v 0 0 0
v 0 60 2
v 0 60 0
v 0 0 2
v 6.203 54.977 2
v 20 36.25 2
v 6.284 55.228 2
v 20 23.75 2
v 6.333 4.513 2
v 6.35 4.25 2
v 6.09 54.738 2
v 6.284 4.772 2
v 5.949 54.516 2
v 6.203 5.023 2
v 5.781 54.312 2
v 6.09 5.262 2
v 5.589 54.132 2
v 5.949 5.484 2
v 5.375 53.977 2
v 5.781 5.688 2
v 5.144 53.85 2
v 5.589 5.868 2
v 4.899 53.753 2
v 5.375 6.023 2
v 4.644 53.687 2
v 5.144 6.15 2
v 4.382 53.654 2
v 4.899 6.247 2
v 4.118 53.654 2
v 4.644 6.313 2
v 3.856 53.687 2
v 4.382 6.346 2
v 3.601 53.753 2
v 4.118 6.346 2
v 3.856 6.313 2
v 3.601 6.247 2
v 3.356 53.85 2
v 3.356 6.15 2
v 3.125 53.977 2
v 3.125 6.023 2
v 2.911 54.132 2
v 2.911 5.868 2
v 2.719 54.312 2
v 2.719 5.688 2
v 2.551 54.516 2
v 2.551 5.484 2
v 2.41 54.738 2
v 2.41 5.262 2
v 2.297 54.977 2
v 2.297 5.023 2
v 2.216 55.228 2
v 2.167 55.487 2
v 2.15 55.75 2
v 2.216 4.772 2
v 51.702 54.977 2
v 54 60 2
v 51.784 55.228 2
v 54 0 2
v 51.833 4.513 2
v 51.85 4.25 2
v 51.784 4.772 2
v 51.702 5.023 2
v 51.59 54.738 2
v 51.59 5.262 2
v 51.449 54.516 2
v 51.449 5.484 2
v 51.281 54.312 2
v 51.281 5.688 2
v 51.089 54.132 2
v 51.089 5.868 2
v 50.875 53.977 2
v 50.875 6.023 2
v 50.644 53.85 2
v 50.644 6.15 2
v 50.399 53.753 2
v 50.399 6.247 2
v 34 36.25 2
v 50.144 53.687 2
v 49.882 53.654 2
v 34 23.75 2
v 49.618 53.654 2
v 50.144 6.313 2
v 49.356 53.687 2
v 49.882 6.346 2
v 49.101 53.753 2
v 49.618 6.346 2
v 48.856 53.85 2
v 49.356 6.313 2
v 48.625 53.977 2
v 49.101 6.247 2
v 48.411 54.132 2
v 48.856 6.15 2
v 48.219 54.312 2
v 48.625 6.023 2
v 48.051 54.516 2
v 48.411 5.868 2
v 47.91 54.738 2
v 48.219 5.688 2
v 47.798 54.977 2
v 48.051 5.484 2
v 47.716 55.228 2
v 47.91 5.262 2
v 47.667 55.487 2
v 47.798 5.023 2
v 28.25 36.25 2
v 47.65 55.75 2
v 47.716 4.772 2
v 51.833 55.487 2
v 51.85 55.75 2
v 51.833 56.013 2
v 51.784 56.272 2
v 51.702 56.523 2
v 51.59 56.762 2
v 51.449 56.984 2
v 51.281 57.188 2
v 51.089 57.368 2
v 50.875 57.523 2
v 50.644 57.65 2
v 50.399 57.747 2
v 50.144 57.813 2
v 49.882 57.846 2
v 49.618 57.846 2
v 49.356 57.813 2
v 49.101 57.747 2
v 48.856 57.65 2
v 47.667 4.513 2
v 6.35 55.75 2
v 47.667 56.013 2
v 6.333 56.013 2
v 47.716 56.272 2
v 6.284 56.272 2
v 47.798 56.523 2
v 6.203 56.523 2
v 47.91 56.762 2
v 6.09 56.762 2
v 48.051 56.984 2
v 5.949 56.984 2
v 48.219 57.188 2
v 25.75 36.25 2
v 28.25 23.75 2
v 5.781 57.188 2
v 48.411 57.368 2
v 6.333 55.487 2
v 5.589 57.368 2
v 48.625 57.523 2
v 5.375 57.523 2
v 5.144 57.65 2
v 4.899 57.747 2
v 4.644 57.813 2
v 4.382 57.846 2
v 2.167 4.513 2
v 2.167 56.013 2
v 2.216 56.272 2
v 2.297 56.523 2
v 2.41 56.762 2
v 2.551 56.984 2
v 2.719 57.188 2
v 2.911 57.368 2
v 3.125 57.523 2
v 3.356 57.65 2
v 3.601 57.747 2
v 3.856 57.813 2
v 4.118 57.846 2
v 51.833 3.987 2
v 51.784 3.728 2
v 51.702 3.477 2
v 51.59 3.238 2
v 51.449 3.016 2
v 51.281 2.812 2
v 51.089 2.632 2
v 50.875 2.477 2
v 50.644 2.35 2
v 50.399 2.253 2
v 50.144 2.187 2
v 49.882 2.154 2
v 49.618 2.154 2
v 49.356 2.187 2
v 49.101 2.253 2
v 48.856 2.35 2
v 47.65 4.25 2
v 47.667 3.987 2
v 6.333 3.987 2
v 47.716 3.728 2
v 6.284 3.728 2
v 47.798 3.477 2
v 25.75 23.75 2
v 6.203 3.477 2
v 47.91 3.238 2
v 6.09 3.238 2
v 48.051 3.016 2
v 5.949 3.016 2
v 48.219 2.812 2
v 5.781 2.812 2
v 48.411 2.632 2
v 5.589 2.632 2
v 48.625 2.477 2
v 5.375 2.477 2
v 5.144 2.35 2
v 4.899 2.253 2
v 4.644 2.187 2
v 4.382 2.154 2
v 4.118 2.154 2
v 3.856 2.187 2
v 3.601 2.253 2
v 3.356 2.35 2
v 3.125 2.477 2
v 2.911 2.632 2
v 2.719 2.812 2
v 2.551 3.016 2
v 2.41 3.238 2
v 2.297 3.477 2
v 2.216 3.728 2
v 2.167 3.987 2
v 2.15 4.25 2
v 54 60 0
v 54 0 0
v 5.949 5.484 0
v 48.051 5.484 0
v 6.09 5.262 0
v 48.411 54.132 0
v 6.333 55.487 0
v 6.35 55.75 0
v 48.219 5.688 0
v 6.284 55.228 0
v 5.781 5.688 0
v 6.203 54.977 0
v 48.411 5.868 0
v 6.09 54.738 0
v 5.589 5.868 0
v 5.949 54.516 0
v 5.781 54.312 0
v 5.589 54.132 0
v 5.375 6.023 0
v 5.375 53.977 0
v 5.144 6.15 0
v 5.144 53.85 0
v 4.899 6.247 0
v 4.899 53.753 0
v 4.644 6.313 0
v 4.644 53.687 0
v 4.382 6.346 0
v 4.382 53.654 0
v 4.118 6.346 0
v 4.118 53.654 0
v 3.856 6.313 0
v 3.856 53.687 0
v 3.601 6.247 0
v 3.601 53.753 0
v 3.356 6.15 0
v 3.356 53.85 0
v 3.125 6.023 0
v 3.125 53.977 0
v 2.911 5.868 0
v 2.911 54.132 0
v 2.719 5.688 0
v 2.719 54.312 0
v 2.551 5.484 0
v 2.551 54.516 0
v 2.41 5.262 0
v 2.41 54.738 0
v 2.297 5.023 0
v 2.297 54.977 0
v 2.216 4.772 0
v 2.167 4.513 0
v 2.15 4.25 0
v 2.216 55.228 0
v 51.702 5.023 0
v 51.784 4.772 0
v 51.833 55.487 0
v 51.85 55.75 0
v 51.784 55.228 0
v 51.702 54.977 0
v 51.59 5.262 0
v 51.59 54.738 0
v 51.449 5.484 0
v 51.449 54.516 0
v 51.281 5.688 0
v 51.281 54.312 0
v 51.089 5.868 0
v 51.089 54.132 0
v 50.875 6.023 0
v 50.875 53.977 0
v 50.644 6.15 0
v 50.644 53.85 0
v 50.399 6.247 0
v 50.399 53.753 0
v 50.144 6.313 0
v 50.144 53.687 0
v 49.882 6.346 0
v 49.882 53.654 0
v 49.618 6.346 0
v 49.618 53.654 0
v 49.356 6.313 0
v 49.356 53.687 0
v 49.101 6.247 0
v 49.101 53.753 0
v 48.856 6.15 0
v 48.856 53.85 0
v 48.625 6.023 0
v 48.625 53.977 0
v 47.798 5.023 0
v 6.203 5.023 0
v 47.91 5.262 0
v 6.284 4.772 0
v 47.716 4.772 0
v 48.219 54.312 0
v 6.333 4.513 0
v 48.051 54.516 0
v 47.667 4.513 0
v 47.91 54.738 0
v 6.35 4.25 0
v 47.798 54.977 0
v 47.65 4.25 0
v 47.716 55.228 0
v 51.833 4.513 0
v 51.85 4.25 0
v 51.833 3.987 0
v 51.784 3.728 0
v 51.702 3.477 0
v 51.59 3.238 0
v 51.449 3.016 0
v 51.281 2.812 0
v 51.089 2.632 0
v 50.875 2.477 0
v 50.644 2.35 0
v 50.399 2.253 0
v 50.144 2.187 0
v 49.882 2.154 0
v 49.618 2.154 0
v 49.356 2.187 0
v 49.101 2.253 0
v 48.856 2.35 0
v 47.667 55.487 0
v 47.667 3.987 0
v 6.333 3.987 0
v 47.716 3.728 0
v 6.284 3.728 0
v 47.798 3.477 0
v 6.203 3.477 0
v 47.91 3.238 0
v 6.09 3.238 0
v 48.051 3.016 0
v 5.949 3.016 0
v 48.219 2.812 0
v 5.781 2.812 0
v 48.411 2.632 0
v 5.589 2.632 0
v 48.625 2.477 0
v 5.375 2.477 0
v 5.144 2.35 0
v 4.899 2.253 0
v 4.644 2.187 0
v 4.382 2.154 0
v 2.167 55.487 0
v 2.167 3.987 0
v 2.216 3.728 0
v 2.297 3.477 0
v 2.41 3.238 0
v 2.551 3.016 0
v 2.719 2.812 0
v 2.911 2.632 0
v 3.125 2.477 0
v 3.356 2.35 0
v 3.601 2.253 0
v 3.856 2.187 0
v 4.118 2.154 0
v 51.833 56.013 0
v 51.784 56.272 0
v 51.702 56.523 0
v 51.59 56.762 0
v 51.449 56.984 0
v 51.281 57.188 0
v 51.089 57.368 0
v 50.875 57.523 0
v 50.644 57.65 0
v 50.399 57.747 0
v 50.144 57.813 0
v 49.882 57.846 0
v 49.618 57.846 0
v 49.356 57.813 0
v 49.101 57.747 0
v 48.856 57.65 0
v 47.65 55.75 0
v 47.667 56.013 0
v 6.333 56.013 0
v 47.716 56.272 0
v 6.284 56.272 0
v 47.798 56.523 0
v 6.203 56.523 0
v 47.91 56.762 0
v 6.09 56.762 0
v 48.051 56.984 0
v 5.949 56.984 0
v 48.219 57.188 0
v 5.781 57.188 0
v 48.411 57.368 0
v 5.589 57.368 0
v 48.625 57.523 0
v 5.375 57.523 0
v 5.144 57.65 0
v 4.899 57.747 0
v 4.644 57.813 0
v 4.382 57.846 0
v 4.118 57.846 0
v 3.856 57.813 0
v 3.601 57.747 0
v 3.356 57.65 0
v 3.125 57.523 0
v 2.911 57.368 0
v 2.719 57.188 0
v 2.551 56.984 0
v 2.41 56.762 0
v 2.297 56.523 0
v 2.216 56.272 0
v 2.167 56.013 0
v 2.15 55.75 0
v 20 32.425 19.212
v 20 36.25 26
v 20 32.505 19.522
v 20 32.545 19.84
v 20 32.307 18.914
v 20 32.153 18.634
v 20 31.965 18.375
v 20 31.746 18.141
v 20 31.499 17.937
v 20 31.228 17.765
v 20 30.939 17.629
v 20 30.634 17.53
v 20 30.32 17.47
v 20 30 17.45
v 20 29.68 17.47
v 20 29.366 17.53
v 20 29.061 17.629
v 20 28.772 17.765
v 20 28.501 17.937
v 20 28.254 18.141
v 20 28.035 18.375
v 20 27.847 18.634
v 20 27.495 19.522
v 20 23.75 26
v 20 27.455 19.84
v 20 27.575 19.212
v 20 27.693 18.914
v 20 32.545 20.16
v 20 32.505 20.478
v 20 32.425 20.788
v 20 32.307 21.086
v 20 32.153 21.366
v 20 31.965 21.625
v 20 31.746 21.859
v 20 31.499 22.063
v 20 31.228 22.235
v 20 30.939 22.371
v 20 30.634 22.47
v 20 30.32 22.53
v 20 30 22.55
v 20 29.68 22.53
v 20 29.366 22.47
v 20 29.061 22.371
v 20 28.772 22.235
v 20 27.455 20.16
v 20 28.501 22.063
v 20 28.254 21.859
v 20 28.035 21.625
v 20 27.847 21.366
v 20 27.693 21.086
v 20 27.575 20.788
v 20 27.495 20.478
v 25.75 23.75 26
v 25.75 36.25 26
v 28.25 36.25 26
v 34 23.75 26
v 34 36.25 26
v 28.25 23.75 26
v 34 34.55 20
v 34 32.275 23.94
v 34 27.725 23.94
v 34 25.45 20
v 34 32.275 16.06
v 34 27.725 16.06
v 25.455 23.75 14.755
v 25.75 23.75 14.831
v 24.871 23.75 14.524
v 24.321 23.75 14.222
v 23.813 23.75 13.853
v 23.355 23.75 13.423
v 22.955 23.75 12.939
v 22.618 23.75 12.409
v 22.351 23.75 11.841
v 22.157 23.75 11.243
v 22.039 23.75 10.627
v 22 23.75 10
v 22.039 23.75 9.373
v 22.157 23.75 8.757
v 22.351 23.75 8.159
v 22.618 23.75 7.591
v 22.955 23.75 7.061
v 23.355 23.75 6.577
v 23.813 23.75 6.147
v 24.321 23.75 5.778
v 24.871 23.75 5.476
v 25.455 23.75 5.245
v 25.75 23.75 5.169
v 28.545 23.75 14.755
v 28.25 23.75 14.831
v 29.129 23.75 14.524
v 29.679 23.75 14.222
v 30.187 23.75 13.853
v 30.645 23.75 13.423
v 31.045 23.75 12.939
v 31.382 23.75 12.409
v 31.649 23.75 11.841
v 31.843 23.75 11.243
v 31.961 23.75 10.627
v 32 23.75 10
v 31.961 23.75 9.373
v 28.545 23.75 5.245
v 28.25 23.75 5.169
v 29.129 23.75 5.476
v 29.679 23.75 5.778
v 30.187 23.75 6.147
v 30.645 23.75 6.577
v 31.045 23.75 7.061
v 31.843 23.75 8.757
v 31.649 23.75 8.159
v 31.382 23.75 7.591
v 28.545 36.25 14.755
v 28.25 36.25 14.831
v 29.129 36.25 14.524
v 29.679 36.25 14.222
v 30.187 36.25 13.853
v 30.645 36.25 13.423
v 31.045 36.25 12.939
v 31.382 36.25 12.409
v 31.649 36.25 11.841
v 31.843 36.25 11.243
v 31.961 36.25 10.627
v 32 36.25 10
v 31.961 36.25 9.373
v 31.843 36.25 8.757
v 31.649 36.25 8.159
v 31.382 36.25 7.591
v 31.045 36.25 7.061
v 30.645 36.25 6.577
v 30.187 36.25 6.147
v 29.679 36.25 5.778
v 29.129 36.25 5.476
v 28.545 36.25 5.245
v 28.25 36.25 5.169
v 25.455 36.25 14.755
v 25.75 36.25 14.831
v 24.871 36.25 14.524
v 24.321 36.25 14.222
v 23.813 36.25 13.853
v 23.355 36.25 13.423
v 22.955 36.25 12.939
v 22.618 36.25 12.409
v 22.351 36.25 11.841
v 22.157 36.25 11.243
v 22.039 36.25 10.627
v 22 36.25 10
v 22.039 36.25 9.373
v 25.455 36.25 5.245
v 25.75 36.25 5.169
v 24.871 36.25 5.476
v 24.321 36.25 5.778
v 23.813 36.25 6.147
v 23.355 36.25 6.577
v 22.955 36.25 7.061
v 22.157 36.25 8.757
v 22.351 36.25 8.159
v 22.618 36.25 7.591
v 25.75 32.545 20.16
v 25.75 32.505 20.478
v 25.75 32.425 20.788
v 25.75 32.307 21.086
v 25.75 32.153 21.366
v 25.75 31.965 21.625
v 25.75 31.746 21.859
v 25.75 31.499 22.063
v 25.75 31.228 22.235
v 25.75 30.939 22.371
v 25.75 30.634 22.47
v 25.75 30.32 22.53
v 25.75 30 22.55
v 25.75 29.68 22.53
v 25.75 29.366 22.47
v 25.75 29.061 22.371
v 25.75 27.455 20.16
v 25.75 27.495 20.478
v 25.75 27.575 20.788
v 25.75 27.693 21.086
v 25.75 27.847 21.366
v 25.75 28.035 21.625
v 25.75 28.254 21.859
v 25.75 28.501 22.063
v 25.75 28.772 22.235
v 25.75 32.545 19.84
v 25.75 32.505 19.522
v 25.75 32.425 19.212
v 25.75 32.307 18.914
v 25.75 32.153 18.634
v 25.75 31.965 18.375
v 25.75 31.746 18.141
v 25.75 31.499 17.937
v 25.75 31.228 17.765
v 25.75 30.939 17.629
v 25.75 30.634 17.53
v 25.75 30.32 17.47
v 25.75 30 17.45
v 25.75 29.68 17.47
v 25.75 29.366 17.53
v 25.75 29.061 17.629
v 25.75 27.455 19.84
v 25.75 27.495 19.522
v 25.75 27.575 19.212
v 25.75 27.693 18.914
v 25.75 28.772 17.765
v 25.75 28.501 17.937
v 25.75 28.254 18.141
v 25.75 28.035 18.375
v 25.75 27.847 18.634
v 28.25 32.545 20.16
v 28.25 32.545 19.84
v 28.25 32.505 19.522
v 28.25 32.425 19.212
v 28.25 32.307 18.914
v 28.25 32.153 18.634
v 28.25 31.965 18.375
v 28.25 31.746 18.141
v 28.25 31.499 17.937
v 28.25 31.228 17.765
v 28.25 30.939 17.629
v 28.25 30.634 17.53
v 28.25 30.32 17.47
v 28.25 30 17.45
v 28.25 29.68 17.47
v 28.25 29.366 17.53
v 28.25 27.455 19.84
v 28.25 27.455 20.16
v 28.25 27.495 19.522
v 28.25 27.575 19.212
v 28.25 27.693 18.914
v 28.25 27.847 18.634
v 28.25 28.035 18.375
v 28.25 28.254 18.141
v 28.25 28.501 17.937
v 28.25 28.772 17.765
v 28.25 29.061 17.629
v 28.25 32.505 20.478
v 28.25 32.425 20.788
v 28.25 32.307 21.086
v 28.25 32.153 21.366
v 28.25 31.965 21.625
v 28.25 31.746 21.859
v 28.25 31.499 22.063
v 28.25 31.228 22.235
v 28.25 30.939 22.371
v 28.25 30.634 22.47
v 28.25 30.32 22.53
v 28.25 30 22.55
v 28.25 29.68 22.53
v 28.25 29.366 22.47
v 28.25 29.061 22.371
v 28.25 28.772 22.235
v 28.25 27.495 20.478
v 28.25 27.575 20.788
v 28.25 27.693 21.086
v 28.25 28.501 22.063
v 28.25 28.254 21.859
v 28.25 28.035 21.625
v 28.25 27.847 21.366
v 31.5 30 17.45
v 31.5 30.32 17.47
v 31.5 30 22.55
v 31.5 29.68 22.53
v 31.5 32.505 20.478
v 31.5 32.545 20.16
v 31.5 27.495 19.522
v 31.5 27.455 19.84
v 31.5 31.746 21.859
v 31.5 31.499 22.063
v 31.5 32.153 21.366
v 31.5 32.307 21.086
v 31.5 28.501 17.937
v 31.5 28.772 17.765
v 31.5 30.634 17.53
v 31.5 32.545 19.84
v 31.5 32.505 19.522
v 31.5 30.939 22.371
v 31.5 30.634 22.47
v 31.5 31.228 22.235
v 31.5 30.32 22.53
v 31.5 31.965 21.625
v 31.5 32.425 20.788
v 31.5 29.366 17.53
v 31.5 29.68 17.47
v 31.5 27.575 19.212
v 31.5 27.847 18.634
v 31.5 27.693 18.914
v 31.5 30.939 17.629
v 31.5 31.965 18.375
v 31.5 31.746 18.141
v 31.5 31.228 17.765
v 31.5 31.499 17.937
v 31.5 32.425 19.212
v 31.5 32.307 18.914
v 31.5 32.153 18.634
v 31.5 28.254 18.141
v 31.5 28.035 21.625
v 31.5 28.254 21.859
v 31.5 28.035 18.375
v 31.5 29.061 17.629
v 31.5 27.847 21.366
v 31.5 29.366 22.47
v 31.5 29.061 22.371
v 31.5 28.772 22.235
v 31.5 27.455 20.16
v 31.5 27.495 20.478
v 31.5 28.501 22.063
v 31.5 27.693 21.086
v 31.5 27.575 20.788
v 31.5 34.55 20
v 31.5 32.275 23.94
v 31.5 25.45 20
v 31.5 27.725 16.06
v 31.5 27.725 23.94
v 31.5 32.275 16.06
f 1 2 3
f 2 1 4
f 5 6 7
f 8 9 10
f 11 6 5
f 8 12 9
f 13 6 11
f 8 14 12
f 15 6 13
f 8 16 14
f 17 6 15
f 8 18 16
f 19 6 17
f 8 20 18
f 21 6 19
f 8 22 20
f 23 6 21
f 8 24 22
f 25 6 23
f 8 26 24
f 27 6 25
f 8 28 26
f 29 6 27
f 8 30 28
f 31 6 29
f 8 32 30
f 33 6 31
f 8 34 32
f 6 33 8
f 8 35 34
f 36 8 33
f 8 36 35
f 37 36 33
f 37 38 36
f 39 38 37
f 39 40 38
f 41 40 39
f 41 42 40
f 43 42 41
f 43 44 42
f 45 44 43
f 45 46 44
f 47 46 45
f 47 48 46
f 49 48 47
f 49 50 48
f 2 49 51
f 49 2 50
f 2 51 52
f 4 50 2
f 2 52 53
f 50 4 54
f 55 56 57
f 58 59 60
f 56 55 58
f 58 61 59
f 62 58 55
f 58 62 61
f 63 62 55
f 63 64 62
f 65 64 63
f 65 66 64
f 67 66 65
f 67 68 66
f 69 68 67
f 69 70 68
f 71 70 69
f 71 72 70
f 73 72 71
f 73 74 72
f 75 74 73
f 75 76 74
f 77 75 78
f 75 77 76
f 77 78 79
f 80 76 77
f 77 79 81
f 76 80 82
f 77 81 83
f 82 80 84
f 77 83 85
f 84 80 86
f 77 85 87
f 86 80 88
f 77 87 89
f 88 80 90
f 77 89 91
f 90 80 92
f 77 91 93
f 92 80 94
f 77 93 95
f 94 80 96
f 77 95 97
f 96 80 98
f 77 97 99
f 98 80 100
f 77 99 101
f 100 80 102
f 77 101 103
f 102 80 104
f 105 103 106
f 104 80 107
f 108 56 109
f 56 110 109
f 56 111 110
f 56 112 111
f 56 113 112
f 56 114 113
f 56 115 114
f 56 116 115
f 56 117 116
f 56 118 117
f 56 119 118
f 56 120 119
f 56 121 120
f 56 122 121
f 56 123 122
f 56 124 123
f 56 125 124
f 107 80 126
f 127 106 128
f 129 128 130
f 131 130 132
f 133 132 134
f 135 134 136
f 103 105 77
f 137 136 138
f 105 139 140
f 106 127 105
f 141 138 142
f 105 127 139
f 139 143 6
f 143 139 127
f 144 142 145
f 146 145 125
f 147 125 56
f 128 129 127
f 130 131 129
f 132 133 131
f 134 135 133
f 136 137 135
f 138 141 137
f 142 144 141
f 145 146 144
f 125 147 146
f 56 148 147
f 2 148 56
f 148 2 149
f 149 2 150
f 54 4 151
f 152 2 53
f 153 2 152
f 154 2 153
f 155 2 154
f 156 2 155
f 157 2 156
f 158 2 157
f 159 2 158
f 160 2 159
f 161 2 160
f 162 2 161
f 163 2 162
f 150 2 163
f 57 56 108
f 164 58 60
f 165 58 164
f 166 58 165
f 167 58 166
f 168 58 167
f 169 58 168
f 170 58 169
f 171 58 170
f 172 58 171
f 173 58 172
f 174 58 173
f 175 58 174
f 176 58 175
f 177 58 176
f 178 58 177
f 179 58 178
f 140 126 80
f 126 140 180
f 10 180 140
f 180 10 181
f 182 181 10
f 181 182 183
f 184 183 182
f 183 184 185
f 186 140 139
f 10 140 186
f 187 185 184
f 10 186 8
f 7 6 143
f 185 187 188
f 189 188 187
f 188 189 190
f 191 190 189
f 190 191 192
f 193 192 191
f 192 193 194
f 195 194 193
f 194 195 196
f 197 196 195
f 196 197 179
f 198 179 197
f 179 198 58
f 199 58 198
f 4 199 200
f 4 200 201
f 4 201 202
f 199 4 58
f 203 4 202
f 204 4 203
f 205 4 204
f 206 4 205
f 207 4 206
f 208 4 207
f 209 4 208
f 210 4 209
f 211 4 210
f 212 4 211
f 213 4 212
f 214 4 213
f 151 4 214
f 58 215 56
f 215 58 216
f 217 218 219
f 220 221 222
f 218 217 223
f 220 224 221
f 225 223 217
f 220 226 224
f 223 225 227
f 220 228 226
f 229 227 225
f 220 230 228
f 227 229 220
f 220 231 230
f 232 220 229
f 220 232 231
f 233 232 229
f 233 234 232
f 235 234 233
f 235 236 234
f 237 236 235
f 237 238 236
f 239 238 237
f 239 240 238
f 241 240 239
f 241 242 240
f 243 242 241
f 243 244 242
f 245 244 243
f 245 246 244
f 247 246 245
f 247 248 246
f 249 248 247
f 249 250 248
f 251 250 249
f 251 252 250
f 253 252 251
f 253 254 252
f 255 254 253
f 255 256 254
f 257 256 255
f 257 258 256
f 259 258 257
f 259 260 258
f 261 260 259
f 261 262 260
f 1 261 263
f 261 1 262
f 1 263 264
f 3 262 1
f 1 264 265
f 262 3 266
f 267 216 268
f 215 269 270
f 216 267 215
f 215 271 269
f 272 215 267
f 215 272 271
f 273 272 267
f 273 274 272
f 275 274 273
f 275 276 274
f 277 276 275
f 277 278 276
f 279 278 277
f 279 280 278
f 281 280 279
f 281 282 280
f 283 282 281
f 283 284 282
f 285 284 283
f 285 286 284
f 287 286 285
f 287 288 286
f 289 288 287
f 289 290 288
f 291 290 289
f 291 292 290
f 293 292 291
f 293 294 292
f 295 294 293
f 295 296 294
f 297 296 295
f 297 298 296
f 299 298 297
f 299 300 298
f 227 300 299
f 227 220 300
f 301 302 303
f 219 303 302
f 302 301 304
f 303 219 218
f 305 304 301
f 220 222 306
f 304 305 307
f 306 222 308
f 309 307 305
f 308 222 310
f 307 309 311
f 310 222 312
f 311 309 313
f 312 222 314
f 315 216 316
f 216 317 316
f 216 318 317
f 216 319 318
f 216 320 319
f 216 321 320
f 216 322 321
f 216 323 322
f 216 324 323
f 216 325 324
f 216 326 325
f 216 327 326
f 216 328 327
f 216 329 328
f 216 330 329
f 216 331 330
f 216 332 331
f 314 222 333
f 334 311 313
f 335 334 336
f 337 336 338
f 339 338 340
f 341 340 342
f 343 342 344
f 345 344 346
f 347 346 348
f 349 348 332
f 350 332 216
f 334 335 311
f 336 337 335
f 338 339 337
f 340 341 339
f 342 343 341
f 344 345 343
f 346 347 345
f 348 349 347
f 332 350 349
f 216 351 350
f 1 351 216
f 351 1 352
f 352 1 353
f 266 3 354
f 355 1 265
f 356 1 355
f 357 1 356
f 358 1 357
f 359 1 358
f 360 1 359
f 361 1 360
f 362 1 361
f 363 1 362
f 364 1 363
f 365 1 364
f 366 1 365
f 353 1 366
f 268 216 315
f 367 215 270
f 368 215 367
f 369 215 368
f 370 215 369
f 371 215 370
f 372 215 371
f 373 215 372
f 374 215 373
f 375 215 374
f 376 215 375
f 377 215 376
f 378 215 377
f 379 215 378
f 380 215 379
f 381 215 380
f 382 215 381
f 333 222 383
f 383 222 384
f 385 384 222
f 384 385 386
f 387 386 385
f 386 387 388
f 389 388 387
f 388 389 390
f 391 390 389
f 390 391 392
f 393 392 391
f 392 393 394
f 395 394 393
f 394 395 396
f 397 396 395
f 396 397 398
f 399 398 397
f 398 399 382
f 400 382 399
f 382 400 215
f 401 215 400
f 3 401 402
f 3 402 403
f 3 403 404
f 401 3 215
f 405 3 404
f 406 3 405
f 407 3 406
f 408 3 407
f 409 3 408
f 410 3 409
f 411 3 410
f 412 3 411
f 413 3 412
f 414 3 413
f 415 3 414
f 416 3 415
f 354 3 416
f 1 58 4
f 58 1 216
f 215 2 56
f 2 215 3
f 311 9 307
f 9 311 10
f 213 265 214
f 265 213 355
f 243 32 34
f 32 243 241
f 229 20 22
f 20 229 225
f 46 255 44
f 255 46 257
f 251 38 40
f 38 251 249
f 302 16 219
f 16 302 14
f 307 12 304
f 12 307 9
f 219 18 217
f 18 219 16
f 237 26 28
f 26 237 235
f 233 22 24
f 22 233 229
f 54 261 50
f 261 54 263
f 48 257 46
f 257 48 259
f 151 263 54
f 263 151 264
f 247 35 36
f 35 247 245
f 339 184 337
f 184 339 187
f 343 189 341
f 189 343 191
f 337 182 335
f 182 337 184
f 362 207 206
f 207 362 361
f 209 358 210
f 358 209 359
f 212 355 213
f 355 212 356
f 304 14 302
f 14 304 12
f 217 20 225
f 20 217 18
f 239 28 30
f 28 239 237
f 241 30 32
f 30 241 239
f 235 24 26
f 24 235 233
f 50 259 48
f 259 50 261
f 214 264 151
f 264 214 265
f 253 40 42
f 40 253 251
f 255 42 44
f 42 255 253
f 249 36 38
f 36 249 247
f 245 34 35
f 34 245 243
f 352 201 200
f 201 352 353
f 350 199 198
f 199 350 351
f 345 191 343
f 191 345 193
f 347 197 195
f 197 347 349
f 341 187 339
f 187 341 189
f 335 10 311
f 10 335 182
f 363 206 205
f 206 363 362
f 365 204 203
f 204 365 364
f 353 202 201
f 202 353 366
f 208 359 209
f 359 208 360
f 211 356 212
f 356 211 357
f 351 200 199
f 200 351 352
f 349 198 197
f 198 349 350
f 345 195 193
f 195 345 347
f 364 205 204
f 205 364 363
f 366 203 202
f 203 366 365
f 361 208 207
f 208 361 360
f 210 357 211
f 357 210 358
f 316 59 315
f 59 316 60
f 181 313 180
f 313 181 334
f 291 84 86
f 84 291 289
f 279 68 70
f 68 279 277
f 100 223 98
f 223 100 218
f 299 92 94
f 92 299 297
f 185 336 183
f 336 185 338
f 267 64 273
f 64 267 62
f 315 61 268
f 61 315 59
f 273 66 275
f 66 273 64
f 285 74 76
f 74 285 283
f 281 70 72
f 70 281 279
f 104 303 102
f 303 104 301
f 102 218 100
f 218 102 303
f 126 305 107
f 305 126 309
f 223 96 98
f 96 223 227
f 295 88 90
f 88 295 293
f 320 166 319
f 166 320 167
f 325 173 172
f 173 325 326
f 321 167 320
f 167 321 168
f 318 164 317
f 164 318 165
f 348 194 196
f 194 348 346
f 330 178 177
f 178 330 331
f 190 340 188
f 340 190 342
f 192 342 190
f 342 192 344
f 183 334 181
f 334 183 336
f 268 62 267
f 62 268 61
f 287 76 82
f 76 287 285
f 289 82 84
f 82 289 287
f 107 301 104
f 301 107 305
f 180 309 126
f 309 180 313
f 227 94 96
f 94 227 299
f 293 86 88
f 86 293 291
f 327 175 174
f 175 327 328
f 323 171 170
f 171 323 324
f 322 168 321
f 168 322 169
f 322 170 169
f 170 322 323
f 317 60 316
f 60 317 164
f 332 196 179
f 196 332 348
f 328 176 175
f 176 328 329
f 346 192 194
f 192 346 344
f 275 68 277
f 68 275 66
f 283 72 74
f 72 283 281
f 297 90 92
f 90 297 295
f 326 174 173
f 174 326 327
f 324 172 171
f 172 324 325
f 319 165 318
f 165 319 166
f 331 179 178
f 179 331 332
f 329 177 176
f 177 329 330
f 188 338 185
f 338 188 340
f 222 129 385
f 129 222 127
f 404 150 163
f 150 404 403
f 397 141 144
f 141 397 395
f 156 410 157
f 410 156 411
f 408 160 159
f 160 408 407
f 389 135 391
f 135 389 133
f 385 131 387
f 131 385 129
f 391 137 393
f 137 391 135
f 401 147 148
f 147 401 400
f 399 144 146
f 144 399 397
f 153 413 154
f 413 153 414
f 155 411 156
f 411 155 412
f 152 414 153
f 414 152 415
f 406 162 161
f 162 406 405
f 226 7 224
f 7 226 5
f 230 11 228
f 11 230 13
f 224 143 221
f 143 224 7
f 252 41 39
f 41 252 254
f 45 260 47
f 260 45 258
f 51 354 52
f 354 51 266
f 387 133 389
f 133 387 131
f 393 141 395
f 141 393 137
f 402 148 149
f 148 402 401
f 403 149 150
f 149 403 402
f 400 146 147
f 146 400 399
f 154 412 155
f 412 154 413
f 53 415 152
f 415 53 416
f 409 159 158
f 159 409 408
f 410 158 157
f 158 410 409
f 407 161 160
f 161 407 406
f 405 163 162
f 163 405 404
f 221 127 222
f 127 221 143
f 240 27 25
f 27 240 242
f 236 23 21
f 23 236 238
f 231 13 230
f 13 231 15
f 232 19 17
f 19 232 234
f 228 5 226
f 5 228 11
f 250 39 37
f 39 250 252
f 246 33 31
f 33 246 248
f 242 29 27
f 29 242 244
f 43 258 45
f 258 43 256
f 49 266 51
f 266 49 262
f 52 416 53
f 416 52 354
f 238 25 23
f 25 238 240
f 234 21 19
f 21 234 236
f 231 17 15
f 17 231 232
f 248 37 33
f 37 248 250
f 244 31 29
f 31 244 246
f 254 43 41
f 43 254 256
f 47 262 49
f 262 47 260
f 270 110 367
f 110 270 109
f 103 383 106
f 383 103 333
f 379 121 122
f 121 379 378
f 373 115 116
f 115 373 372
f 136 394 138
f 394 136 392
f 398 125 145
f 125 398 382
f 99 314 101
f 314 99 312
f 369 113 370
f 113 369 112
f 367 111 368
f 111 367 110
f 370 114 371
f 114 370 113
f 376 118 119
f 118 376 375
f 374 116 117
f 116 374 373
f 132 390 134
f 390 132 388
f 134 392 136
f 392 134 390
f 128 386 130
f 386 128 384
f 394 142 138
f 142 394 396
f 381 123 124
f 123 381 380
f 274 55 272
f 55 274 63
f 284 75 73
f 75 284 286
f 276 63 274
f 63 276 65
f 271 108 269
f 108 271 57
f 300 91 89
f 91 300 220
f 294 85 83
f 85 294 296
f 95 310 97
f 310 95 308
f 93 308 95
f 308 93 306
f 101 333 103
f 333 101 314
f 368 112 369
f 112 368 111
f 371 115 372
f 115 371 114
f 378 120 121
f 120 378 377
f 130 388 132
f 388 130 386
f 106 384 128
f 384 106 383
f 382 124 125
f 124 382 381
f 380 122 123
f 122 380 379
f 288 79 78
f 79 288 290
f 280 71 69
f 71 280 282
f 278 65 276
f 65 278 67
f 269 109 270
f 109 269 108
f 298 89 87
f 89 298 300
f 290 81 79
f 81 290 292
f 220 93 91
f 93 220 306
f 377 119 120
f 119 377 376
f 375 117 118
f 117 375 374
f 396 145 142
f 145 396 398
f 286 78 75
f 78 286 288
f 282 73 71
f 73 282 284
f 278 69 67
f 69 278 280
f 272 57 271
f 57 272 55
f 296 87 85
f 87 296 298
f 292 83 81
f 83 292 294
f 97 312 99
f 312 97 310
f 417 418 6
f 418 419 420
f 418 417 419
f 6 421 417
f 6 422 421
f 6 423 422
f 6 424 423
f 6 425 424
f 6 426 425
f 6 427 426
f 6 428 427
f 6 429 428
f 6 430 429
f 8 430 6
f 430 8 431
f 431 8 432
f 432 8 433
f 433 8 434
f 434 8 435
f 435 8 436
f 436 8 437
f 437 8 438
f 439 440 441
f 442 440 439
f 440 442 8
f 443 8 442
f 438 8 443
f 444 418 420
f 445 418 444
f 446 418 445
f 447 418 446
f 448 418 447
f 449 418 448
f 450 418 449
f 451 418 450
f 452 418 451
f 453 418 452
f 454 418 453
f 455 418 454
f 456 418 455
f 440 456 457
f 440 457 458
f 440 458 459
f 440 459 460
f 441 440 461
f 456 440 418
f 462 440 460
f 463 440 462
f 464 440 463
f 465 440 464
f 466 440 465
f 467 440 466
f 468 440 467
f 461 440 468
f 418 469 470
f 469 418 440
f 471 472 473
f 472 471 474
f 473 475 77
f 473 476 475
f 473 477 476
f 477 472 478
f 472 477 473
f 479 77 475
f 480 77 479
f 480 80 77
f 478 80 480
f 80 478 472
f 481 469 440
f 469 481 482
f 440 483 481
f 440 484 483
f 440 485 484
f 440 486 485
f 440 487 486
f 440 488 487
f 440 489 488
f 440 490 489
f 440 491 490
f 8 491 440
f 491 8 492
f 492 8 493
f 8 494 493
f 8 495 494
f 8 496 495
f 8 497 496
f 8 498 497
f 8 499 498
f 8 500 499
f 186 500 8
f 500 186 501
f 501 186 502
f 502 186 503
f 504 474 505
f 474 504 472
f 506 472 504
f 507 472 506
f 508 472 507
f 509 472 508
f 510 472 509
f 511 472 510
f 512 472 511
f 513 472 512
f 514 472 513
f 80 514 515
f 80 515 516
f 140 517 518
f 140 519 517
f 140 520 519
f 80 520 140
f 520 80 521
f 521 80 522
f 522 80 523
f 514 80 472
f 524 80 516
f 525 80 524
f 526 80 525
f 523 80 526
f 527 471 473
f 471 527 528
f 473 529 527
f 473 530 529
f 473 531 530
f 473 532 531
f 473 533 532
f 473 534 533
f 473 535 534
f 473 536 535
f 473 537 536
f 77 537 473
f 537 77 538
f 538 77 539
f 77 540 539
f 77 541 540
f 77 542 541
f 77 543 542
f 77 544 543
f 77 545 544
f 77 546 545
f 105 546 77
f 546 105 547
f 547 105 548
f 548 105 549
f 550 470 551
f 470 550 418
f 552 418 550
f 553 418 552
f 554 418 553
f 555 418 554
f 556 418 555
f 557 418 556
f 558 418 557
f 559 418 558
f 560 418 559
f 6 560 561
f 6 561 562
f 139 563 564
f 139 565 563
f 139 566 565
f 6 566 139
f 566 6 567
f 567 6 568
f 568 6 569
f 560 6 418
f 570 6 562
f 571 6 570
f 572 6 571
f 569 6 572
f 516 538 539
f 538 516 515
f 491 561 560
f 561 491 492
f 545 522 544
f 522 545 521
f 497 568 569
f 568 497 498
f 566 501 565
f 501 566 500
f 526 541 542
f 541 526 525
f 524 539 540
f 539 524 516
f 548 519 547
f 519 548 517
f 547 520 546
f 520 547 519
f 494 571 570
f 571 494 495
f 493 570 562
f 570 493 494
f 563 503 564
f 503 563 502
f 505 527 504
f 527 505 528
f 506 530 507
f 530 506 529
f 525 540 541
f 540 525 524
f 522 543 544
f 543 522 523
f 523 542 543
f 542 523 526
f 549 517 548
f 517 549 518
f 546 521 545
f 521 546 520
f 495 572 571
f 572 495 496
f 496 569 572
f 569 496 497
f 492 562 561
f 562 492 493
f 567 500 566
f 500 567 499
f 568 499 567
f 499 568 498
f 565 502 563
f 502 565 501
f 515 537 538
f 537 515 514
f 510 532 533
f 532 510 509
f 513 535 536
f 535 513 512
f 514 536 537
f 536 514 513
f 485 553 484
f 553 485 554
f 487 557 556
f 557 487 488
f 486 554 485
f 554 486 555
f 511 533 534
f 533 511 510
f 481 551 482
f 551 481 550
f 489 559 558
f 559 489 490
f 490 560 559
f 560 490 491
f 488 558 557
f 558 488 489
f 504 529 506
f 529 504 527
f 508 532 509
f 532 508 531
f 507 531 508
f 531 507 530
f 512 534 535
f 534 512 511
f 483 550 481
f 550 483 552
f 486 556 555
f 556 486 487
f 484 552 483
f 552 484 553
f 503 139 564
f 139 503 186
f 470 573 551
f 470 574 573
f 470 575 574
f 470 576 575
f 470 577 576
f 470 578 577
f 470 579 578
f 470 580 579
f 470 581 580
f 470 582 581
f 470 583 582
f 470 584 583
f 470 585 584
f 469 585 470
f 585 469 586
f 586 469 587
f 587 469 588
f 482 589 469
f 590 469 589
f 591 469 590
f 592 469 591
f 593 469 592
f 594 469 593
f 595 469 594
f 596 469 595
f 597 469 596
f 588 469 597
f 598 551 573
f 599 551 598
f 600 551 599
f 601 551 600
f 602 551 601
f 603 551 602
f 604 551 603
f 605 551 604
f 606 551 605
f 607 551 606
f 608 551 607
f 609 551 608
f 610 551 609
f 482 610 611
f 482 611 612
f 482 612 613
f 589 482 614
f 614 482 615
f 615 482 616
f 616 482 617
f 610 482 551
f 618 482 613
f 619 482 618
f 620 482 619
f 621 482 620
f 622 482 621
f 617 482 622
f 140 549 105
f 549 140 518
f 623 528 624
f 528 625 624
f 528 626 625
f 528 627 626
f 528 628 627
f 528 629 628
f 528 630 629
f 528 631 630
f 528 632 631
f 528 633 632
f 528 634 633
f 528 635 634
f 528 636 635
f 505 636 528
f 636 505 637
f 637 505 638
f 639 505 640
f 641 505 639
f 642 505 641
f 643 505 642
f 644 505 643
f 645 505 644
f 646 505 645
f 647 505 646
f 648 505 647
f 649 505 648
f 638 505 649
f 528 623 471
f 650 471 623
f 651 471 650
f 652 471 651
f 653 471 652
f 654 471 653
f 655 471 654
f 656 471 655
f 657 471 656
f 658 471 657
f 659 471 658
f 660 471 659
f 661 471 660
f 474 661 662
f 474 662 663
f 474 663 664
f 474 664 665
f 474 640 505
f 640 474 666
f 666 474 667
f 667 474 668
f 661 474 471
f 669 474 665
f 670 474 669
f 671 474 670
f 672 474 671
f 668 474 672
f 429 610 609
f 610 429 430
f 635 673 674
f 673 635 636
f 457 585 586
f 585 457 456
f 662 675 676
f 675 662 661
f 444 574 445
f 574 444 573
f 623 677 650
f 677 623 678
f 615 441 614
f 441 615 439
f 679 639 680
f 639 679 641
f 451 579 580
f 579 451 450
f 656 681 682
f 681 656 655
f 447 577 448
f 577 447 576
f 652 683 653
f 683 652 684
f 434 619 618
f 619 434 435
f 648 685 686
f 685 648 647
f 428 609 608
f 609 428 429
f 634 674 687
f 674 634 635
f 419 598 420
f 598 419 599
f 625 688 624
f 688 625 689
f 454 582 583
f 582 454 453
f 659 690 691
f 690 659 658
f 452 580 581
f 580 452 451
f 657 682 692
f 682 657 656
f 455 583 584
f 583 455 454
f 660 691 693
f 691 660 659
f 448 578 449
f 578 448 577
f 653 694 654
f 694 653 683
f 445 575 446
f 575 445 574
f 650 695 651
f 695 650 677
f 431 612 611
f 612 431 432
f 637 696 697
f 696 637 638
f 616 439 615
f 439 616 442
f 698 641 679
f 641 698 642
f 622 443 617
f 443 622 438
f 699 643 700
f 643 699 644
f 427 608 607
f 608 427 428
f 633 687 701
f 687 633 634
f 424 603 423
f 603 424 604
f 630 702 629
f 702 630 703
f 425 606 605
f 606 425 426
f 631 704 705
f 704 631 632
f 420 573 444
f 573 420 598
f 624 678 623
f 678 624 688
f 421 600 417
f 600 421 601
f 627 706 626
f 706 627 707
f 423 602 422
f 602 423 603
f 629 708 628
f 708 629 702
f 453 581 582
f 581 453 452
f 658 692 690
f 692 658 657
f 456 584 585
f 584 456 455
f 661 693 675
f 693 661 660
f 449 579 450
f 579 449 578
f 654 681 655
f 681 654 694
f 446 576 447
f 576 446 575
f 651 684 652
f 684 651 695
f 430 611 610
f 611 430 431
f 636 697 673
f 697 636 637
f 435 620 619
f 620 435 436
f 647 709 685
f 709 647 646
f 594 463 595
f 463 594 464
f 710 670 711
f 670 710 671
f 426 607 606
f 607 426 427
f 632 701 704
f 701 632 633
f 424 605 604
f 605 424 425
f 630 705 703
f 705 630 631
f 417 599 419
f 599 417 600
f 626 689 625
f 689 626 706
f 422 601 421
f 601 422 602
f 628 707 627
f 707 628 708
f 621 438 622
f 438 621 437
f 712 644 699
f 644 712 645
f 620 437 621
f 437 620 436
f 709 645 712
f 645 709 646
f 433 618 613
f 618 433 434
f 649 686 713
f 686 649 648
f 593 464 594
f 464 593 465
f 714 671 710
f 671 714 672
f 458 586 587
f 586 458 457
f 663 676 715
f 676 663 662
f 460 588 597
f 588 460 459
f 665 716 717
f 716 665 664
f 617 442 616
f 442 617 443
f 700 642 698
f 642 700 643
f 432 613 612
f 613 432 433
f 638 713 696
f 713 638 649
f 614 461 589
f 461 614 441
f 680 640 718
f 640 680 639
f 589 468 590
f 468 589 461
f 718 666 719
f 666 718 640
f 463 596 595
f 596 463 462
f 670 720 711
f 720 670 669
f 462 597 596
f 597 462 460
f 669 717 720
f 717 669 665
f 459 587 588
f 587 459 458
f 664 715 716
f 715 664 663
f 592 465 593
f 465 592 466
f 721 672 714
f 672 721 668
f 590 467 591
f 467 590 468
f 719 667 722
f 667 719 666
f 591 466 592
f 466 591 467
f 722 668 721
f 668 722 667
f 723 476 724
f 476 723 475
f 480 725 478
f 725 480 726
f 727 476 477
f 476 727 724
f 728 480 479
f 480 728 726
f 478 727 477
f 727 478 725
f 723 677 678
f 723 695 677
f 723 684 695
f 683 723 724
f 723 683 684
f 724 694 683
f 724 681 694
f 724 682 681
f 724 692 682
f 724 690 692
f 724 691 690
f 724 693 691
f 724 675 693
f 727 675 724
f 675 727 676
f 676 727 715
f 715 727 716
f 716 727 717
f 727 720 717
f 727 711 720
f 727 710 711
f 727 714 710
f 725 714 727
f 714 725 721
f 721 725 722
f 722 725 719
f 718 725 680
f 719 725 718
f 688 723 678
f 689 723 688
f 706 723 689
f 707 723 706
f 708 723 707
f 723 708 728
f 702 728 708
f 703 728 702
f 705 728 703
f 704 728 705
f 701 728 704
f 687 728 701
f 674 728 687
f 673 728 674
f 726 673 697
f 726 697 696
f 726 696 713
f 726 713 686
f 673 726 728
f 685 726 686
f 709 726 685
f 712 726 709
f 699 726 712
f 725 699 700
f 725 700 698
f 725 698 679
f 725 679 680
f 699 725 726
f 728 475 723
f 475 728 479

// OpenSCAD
$fn = 50;
platethickness = 2;
union(){
    difference(){
        cube([54, 60, platethickness]);
        translate([2.2 + 2.05, 2.2 + 2.05, 0]) cylinder(platethickness, 2.1, 2.1);
        translate([54 - (2.2 + 2.05), 2.2 + 2.05, 0]) cylinder(platethickness, 2.1, 2.1);
        translate([2.2 + 2.05, 60 - (2.2 + 2.05), 0]) cylinder(platethickness, 2.1, 2.1);
        translate([54 - (2.2 + 2.05), 60 - (2.2 + 2.05), 0]) cylinder(platethickness, 2.1, 2.1);
    }
    difference(){
        translate([54/2, 60/2, platethickness]){
            translate([0, 0, 12]) cube([5*2+4, 12.5, 24], true);
            //translate([2.5 + 3, -12.5/2, 0]) cube([5/2, 12.5, 10]);
            //translate([54/2, 30-12.5/2, 5]) rotate([-90, 0, 0]) cylinder(12.5, 5, 5);
        }
    
        //translate([54/2, 30-12.5/2, platethickness + 10]) rotate([-90, 0, 0]) cylinder(12.5, 8, 8);
        translate([54/2, 30-12.5/2, platethickness + 8]) rotate([-90, 0, 0]) cylinder(12.5, 5, 5);
        translate([54/2, 60/2, platethickness + 15]) cube([5/2, 12.5, 30], true);
        translate([54/2, 30, platethickness + 18]) rotate([0, 90, 0]) cylinder(20, 2.55, 2.55, true);
        translate([54/2 + 4.5, 30, platethickness + 18]) rotate([0, 90, 0]) rotate([0, 0, 90]) cylinder(5, 4.55, 4.55, false, $fn = 6);
    }
    //translate([54/2, 60/2, platethickness]) cube([5, 12.5, 5]);
}
